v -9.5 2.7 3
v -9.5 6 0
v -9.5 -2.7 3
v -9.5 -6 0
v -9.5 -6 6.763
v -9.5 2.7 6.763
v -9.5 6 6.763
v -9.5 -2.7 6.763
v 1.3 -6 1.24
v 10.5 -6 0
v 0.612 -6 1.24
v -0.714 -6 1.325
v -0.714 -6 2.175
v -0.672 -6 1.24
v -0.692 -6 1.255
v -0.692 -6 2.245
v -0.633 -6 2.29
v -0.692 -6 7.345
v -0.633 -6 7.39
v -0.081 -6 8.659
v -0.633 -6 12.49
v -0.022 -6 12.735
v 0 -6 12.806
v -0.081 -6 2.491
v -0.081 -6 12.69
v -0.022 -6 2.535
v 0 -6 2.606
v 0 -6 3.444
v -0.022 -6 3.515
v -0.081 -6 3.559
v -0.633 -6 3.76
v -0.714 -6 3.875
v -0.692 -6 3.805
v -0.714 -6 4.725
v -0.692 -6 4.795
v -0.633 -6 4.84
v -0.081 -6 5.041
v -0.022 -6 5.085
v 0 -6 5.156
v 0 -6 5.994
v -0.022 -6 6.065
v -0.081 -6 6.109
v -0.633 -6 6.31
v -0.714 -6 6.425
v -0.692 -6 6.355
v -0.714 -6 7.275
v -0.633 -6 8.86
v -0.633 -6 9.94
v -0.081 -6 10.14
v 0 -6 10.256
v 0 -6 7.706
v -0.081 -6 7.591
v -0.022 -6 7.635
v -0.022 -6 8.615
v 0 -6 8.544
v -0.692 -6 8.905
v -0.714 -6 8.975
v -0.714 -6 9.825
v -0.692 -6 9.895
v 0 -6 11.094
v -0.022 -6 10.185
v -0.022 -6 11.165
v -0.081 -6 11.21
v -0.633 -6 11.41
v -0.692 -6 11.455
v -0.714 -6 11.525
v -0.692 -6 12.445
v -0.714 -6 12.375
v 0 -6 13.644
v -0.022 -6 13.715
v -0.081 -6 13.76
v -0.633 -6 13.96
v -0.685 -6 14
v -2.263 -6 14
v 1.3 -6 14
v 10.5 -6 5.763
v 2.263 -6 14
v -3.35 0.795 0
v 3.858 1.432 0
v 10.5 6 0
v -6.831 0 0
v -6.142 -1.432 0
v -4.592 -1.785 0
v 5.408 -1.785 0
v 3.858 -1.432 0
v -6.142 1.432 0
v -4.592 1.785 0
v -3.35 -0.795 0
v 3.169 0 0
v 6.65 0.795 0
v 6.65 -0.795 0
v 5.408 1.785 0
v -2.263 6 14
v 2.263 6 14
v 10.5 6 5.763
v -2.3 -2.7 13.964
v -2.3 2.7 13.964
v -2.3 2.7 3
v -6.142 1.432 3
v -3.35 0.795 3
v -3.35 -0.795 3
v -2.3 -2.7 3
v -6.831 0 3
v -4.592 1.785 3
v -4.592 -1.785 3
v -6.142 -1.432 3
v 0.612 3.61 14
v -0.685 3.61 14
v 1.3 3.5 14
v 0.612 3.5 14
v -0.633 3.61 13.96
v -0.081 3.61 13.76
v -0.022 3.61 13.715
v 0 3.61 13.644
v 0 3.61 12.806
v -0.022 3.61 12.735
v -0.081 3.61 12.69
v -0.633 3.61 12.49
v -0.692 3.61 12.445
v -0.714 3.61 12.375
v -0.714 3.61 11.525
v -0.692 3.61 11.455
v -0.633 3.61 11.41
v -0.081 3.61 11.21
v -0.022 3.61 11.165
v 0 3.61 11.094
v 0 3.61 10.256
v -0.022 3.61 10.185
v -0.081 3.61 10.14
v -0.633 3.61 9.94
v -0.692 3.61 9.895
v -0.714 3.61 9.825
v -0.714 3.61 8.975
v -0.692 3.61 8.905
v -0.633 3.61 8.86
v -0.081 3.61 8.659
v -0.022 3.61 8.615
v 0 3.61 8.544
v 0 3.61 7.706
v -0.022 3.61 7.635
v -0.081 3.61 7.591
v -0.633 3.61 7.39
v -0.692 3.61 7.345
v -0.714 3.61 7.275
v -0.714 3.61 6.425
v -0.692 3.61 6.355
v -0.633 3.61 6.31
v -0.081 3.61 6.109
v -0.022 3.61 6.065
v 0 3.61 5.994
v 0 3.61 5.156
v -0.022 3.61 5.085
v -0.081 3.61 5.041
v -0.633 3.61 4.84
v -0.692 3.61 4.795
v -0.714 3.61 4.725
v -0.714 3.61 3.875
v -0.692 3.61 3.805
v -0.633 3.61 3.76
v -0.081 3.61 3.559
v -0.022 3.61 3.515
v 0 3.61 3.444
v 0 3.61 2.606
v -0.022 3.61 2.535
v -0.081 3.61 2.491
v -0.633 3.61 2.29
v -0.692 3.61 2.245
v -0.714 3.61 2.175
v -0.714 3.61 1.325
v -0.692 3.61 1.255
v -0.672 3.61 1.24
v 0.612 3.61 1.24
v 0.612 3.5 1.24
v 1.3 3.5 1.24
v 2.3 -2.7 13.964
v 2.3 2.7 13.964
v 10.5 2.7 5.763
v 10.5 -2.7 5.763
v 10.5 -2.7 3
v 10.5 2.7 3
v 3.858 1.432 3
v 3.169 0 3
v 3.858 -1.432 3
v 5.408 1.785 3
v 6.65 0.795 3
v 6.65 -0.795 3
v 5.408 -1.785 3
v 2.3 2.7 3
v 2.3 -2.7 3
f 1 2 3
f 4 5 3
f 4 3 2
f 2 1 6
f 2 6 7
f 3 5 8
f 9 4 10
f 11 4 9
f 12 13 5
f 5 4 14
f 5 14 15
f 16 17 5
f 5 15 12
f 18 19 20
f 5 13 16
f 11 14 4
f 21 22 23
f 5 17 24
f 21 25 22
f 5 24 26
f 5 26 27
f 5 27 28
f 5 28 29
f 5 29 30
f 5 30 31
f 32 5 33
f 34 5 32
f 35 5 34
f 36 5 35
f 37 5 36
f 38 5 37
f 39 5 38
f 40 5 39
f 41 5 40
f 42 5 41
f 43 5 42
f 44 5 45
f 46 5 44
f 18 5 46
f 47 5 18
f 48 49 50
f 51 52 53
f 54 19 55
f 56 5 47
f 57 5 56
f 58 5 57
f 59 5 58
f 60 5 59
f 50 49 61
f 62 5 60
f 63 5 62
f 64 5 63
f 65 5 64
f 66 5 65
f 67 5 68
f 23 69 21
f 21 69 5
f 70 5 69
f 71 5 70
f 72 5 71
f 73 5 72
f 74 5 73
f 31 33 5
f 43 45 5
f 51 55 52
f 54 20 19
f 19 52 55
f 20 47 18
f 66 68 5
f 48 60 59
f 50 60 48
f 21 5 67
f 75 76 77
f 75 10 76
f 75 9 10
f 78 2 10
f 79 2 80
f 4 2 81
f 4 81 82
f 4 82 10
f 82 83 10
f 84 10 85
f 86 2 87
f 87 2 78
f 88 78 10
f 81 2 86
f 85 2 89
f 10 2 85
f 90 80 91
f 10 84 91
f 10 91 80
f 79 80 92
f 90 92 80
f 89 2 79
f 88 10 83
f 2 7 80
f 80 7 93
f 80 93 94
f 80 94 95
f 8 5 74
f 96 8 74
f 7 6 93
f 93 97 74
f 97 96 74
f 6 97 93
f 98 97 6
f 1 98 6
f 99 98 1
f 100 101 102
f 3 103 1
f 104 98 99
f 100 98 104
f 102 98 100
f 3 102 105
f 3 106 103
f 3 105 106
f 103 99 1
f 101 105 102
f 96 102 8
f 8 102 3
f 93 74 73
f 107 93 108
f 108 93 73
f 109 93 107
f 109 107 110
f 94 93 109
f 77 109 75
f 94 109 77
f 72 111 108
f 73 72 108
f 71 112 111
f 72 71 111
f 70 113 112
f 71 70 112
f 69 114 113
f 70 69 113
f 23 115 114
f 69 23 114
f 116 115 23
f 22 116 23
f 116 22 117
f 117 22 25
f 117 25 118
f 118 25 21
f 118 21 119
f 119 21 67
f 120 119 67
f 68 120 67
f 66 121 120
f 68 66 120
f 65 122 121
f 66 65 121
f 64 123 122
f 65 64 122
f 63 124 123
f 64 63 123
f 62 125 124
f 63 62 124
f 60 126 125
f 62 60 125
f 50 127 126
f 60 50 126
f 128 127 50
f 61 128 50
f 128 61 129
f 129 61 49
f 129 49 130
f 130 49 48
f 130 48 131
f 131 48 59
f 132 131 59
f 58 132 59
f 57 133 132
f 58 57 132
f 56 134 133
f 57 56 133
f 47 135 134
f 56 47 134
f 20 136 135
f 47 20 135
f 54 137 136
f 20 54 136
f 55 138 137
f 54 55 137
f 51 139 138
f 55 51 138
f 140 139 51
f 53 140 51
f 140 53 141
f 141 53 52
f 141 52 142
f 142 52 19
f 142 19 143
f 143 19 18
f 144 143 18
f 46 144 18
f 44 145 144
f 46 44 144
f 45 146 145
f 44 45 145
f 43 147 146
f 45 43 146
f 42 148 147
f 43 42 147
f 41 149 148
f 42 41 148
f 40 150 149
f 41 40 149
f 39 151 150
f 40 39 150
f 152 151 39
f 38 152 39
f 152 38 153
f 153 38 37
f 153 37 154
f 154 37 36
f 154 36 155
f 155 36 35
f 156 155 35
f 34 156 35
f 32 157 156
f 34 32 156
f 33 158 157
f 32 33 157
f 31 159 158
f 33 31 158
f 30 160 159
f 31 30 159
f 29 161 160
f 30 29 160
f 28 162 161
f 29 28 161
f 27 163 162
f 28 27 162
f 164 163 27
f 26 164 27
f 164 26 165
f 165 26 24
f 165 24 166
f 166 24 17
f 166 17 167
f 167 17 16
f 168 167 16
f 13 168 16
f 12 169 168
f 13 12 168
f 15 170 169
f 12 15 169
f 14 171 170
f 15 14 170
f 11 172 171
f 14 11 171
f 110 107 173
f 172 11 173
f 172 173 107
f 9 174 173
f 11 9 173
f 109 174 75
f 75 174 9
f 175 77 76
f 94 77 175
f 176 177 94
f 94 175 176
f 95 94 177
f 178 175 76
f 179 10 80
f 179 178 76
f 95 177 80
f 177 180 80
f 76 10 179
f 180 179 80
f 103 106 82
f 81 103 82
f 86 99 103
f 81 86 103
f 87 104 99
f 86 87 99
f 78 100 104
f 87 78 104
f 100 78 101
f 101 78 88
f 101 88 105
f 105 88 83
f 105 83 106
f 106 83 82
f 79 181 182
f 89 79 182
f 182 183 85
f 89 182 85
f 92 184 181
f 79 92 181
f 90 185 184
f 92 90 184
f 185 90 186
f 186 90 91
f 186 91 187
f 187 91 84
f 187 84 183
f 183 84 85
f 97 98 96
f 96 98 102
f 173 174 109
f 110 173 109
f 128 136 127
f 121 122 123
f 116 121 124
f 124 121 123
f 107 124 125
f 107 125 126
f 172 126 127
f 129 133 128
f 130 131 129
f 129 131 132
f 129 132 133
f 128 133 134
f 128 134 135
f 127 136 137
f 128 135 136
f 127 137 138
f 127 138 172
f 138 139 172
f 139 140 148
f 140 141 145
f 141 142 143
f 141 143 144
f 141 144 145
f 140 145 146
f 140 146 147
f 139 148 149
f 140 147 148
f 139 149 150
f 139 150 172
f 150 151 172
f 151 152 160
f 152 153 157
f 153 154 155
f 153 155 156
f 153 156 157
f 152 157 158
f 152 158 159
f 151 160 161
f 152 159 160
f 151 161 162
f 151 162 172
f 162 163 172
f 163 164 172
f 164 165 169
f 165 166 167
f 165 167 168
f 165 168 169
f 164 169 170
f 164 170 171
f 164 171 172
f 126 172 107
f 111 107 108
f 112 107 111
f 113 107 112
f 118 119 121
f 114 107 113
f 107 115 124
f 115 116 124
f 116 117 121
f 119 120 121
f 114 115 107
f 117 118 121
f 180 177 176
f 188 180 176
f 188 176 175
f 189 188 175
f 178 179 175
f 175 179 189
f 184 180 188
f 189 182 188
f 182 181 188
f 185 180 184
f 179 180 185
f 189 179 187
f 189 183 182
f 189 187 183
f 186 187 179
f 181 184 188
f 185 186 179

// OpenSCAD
// file: polyhole.scad
// based on ployhole.scad by nophead
// http://hydraraptor.blogspot.com/2011/02/polyholes.html
// http://www.thingiverse.com/thing:6118

module polyhole(h, d, center=true) {
    n = max(round(2 * d),3);
    rotate([0,0,180])
        cylinder(h = h, r = (d / 2) / cos (180 / n), $fn = n, center=center);
}
// main file
include <timing_belts.scad>
include <polyhole.scad>

distance_rod     = 60; // middle to middle
w_belt           = 10;

intersection() 
{
difference() {    
    translate([0.5, 0, 7])
        cube([20, 12, 14], center=true);

    translate([0, -2, 14.5])
    union() {
        rotate([0, 90, 0])
        rotate([-90, 0, 0])
            scale(1.02) belt_len(profile = tT2_5, belt_width = w_belt+1, len = 13);

        translate([0.8, 0, -6.5])
            cube([1, w_belt + 1, 13.52], center=true);
    }

    translate([5, 0, 12])
        polyhole(25, 3.3);

    translate([-5, 0, 12])
        polyhole(25, 3.3);

    translate([7.3, 0, 13])
        cube([10, 5.4, 20], center=true);

    translate([-7.3, 0, 13])
        cube([10, 5.4, 20], center=true);
}

rotate([0, 45, 0])
    cube([23, 13, 23], center=true);
}
